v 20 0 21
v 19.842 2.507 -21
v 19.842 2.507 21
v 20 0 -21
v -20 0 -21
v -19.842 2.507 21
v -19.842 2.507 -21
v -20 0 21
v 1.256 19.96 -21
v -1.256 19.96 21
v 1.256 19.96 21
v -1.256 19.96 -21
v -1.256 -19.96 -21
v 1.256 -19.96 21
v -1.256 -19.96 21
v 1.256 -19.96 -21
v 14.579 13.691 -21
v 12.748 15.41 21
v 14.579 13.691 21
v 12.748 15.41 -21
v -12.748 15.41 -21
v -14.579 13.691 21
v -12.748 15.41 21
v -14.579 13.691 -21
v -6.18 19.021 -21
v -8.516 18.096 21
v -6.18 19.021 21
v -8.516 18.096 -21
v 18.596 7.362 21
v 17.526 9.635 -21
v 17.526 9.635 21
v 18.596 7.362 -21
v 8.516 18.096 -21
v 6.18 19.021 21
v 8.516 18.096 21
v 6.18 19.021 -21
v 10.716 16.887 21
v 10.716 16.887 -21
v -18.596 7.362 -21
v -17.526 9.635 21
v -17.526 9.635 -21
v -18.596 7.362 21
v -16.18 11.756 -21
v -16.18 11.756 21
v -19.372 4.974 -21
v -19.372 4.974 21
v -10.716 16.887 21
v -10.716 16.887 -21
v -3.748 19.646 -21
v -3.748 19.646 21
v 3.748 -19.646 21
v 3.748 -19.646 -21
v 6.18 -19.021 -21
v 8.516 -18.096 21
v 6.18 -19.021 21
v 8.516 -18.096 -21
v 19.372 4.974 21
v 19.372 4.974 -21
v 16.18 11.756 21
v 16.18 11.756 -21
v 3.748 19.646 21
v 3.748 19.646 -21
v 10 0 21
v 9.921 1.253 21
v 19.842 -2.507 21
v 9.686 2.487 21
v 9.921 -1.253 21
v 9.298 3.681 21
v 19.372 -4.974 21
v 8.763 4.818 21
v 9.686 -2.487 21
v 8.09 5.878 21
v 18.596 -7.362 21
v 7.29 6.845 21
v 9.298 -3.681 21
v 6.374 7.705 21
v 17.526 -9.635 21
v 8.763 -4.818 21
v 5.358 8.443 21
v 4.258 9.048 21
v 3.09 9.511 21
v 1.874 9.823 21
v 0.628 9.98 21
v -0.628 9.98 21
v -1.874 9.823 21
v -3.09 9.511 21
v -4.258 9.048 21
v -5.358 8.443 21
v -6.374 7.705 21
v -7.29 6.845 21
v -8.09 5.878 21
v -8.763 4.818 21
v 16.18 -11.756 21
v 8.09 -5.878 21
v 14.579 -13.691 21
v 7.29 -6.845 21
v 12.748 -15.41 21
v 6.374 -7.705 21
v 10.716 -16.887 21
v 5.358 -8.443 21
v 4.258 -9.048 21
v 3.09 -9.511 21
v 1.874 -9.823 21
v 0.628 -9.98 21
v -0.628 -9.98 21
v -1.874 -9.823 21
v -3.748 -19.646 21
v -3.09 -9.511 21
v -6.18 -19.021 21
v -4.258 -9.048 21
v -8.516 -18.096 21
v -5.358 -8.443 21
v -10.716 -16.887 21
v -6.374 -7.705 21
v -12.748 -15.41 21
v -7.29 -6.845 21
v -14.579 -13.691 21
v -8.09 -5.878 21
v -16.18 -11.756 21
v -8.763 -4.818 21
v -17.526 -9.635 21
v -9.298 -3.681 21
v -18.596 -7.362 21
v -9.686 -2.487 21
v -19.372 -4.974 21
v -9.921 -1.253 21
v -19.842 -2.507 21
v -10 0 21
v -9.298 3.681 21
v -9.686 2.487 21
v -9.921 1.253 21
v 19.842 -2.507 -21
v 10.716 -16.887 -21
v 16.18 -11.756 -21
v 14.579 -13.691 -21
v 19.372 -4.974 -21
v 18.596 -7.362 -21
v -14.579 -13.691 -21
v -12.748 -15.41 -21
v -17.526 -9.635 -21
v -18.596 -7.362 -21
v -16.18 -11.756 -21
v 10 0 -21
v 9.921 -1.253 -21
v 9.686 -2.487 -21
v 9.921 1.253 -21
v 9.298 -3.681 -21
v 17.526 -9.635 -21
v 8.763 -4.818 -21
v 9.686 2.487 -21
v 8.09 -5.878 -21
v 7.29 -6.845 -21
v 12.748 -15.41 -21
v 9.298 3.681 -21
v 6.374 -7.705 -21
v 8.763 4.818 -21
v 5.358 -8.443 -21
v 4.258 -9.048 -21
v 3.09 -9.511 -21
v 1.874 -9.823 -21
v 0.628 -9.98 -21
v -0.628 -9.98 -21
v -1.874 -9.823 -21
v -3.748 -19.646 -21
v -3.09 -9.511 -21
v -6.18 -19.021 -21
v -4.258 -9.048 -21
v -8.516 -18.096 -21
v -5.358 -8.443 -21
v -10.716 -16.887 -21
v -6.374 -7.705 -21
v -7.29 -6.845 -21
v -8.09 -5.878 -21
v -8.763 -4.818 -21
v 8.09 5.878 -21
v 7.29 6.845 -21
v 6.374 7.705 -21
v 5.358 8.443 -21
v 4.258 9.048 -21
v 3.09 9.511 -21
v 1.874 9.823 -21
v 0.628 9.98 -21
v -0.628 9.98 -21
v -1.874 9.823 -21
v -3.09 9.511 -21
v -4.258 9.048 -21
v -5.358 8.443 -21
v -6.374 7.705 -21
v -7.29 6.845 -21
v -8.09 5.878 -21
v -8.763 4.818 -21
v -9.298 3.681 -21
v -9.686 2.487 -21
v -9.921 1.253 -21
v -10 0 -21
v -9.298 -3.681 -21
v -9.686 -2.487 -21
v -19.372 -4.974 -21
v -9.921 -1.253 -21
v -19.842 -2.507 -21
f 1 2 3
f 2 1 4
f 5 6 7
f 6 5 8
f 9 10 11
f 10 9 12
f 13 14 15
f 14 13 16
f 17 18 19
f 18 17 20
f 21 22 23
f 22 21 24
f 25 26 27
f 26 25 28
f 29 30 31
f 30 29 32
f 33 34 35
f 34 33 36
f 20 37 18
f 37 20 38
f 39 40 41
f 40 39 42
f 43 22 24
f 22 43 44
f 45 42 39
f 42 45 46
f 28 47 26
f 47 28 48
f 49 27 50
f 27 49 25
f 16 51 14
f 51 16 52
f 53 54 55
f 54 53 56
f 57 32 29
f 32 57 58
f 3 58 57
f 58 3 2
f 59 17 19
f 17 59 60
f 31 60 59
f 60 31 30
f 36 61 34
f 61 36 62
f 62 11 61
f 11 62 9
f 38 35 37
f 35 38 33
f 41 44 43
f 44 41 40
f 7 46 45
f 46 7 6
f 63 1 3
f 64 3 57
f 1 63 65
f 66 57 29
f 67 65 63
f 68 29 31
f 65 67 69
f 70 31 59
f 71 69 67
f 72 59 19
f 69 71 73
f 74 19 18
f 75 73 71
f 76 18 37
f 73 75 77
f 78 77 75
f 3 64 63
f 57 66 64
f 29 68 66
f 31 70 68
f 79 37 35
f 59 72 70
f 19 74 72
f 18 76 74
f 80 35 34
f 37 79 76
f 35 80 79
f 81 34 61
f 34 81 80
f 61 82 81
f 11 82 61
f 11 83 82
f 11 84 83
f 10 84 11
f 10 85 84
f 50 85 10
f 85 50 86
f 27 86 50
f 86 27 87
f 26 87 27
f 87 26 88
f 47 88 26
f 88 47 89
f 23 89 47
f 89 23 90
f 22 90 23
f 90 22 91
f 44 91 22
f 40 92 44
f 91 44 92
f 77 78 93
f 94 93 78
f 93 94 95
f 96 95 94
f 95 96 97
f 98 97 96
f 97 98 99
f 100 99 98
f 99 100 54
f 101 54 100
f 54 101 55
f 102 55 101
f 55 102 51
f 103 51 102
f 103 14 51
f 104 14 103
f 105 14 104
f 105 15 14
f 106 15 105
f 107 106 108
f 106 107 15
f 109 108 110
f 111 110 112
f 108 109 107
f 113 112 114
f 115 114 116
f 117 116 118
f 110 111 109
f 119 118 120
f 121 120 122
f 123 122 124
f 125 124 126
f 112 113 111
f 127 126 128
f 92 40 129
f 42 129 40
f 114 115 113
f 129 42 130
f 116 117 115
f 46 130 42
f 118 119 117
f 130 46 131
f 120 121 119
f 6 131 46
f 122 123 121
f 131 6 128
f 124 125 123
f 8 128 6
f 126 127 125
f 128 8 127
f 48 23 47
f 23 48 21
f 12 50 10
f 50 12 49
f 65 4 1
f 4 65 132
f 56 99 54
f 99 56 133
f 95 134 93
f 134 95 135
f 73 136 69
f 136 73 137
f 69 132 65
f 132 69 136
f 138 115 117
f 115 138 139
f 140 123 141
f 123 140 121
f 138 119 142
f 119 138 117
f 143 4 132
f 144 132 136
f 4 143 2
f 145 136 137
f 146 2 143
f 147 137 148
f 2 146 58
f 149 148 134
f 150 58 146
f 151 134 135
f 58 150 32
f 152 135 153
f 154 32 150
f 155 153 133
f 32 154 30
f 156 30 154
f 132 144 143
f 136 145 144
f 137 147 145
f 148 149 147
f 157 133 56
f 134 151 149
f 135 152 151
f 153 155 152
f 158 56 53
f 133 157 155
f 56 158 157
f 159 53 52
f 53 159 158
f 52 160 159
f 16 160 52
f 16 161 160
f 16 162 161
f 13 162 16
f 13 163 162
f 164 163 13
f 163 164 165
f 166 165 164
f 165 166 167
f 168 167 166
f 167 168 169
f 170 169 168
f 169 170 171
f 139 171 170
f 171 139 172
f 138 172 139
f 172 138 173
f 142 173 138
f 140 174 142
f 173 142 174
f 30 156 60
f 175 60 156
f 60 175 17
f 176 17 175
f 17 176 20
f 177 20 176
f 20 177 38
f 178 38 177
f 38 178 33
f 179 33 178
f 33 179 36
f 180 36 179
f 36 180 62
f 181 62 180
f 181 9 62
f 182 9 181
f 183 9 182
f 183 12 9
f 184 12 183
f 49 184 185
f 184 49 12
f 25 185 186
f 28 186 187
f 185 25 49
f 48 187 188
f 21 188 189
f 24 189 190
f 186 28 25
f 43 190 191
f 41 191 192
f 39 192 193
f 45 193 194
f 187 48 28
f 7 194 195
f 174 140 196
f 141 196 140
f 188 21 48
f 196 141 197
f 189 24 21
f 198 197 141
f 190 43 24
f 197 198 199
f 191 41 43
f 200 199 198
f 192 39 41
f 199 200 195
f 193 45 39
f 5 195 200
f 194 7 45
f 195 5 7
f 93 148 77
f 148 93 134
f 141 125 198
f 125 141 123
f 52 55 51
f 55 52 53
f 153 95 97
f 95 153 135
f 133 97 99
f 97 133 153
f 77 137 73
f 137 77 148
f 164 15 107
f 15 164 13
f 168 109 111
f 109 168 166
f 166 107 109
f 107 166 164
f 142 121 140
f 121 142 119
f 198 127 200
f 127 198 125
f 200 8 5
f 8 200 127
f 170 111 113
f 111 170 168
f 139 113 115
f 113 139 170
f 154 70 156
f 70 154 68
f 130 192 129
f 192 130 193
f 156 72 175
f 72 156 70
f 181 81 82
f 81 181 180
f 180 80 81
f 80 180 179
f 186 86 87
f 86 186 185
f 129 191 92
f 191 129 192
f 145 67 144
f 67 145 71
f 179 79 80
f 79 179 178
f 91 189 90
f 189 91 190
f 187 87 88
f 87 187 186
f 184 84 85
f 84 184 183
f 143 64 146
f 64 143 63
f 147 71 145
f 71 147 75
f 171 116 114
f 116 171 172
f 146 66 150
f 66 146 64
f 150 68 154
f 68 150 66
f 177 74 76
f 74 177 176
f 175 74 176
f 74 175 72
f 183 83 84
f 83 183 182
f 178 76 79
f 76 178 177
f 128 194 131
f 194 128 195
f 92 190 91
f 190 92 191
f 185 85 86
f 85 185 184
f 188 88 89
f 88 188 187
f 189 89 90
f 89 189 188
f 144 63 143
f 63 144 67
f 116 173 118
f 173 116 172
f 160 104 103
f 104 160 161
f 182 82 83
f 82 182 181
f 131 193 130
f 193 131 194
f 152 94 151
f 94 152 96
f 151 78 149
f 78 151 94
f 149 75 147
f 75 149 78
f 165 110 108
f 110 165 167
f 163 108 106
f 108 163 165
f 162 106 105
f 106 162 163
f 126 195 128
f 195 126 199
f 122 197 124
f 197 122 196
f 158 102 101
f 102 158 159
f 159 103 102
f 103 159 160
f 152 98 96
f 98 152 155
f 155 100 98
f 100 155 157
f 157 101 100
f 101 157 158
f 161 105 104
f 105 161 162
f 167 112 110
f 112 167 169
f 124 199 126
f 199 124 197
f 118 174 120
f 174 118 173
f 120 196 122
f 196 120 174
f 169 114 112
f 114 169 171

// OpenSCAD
$fn = 50;


difference() {
	union() {
		translate(v = [0, 0, -21.0000000000]) {
			cylinder(h = 42, r = 20.0000000000);
		}
	}
	union() {
		translate(v = [0, 0, -100.0000000000]) {
			cylinder(h = 200, r = 10);
		}
	}
}
